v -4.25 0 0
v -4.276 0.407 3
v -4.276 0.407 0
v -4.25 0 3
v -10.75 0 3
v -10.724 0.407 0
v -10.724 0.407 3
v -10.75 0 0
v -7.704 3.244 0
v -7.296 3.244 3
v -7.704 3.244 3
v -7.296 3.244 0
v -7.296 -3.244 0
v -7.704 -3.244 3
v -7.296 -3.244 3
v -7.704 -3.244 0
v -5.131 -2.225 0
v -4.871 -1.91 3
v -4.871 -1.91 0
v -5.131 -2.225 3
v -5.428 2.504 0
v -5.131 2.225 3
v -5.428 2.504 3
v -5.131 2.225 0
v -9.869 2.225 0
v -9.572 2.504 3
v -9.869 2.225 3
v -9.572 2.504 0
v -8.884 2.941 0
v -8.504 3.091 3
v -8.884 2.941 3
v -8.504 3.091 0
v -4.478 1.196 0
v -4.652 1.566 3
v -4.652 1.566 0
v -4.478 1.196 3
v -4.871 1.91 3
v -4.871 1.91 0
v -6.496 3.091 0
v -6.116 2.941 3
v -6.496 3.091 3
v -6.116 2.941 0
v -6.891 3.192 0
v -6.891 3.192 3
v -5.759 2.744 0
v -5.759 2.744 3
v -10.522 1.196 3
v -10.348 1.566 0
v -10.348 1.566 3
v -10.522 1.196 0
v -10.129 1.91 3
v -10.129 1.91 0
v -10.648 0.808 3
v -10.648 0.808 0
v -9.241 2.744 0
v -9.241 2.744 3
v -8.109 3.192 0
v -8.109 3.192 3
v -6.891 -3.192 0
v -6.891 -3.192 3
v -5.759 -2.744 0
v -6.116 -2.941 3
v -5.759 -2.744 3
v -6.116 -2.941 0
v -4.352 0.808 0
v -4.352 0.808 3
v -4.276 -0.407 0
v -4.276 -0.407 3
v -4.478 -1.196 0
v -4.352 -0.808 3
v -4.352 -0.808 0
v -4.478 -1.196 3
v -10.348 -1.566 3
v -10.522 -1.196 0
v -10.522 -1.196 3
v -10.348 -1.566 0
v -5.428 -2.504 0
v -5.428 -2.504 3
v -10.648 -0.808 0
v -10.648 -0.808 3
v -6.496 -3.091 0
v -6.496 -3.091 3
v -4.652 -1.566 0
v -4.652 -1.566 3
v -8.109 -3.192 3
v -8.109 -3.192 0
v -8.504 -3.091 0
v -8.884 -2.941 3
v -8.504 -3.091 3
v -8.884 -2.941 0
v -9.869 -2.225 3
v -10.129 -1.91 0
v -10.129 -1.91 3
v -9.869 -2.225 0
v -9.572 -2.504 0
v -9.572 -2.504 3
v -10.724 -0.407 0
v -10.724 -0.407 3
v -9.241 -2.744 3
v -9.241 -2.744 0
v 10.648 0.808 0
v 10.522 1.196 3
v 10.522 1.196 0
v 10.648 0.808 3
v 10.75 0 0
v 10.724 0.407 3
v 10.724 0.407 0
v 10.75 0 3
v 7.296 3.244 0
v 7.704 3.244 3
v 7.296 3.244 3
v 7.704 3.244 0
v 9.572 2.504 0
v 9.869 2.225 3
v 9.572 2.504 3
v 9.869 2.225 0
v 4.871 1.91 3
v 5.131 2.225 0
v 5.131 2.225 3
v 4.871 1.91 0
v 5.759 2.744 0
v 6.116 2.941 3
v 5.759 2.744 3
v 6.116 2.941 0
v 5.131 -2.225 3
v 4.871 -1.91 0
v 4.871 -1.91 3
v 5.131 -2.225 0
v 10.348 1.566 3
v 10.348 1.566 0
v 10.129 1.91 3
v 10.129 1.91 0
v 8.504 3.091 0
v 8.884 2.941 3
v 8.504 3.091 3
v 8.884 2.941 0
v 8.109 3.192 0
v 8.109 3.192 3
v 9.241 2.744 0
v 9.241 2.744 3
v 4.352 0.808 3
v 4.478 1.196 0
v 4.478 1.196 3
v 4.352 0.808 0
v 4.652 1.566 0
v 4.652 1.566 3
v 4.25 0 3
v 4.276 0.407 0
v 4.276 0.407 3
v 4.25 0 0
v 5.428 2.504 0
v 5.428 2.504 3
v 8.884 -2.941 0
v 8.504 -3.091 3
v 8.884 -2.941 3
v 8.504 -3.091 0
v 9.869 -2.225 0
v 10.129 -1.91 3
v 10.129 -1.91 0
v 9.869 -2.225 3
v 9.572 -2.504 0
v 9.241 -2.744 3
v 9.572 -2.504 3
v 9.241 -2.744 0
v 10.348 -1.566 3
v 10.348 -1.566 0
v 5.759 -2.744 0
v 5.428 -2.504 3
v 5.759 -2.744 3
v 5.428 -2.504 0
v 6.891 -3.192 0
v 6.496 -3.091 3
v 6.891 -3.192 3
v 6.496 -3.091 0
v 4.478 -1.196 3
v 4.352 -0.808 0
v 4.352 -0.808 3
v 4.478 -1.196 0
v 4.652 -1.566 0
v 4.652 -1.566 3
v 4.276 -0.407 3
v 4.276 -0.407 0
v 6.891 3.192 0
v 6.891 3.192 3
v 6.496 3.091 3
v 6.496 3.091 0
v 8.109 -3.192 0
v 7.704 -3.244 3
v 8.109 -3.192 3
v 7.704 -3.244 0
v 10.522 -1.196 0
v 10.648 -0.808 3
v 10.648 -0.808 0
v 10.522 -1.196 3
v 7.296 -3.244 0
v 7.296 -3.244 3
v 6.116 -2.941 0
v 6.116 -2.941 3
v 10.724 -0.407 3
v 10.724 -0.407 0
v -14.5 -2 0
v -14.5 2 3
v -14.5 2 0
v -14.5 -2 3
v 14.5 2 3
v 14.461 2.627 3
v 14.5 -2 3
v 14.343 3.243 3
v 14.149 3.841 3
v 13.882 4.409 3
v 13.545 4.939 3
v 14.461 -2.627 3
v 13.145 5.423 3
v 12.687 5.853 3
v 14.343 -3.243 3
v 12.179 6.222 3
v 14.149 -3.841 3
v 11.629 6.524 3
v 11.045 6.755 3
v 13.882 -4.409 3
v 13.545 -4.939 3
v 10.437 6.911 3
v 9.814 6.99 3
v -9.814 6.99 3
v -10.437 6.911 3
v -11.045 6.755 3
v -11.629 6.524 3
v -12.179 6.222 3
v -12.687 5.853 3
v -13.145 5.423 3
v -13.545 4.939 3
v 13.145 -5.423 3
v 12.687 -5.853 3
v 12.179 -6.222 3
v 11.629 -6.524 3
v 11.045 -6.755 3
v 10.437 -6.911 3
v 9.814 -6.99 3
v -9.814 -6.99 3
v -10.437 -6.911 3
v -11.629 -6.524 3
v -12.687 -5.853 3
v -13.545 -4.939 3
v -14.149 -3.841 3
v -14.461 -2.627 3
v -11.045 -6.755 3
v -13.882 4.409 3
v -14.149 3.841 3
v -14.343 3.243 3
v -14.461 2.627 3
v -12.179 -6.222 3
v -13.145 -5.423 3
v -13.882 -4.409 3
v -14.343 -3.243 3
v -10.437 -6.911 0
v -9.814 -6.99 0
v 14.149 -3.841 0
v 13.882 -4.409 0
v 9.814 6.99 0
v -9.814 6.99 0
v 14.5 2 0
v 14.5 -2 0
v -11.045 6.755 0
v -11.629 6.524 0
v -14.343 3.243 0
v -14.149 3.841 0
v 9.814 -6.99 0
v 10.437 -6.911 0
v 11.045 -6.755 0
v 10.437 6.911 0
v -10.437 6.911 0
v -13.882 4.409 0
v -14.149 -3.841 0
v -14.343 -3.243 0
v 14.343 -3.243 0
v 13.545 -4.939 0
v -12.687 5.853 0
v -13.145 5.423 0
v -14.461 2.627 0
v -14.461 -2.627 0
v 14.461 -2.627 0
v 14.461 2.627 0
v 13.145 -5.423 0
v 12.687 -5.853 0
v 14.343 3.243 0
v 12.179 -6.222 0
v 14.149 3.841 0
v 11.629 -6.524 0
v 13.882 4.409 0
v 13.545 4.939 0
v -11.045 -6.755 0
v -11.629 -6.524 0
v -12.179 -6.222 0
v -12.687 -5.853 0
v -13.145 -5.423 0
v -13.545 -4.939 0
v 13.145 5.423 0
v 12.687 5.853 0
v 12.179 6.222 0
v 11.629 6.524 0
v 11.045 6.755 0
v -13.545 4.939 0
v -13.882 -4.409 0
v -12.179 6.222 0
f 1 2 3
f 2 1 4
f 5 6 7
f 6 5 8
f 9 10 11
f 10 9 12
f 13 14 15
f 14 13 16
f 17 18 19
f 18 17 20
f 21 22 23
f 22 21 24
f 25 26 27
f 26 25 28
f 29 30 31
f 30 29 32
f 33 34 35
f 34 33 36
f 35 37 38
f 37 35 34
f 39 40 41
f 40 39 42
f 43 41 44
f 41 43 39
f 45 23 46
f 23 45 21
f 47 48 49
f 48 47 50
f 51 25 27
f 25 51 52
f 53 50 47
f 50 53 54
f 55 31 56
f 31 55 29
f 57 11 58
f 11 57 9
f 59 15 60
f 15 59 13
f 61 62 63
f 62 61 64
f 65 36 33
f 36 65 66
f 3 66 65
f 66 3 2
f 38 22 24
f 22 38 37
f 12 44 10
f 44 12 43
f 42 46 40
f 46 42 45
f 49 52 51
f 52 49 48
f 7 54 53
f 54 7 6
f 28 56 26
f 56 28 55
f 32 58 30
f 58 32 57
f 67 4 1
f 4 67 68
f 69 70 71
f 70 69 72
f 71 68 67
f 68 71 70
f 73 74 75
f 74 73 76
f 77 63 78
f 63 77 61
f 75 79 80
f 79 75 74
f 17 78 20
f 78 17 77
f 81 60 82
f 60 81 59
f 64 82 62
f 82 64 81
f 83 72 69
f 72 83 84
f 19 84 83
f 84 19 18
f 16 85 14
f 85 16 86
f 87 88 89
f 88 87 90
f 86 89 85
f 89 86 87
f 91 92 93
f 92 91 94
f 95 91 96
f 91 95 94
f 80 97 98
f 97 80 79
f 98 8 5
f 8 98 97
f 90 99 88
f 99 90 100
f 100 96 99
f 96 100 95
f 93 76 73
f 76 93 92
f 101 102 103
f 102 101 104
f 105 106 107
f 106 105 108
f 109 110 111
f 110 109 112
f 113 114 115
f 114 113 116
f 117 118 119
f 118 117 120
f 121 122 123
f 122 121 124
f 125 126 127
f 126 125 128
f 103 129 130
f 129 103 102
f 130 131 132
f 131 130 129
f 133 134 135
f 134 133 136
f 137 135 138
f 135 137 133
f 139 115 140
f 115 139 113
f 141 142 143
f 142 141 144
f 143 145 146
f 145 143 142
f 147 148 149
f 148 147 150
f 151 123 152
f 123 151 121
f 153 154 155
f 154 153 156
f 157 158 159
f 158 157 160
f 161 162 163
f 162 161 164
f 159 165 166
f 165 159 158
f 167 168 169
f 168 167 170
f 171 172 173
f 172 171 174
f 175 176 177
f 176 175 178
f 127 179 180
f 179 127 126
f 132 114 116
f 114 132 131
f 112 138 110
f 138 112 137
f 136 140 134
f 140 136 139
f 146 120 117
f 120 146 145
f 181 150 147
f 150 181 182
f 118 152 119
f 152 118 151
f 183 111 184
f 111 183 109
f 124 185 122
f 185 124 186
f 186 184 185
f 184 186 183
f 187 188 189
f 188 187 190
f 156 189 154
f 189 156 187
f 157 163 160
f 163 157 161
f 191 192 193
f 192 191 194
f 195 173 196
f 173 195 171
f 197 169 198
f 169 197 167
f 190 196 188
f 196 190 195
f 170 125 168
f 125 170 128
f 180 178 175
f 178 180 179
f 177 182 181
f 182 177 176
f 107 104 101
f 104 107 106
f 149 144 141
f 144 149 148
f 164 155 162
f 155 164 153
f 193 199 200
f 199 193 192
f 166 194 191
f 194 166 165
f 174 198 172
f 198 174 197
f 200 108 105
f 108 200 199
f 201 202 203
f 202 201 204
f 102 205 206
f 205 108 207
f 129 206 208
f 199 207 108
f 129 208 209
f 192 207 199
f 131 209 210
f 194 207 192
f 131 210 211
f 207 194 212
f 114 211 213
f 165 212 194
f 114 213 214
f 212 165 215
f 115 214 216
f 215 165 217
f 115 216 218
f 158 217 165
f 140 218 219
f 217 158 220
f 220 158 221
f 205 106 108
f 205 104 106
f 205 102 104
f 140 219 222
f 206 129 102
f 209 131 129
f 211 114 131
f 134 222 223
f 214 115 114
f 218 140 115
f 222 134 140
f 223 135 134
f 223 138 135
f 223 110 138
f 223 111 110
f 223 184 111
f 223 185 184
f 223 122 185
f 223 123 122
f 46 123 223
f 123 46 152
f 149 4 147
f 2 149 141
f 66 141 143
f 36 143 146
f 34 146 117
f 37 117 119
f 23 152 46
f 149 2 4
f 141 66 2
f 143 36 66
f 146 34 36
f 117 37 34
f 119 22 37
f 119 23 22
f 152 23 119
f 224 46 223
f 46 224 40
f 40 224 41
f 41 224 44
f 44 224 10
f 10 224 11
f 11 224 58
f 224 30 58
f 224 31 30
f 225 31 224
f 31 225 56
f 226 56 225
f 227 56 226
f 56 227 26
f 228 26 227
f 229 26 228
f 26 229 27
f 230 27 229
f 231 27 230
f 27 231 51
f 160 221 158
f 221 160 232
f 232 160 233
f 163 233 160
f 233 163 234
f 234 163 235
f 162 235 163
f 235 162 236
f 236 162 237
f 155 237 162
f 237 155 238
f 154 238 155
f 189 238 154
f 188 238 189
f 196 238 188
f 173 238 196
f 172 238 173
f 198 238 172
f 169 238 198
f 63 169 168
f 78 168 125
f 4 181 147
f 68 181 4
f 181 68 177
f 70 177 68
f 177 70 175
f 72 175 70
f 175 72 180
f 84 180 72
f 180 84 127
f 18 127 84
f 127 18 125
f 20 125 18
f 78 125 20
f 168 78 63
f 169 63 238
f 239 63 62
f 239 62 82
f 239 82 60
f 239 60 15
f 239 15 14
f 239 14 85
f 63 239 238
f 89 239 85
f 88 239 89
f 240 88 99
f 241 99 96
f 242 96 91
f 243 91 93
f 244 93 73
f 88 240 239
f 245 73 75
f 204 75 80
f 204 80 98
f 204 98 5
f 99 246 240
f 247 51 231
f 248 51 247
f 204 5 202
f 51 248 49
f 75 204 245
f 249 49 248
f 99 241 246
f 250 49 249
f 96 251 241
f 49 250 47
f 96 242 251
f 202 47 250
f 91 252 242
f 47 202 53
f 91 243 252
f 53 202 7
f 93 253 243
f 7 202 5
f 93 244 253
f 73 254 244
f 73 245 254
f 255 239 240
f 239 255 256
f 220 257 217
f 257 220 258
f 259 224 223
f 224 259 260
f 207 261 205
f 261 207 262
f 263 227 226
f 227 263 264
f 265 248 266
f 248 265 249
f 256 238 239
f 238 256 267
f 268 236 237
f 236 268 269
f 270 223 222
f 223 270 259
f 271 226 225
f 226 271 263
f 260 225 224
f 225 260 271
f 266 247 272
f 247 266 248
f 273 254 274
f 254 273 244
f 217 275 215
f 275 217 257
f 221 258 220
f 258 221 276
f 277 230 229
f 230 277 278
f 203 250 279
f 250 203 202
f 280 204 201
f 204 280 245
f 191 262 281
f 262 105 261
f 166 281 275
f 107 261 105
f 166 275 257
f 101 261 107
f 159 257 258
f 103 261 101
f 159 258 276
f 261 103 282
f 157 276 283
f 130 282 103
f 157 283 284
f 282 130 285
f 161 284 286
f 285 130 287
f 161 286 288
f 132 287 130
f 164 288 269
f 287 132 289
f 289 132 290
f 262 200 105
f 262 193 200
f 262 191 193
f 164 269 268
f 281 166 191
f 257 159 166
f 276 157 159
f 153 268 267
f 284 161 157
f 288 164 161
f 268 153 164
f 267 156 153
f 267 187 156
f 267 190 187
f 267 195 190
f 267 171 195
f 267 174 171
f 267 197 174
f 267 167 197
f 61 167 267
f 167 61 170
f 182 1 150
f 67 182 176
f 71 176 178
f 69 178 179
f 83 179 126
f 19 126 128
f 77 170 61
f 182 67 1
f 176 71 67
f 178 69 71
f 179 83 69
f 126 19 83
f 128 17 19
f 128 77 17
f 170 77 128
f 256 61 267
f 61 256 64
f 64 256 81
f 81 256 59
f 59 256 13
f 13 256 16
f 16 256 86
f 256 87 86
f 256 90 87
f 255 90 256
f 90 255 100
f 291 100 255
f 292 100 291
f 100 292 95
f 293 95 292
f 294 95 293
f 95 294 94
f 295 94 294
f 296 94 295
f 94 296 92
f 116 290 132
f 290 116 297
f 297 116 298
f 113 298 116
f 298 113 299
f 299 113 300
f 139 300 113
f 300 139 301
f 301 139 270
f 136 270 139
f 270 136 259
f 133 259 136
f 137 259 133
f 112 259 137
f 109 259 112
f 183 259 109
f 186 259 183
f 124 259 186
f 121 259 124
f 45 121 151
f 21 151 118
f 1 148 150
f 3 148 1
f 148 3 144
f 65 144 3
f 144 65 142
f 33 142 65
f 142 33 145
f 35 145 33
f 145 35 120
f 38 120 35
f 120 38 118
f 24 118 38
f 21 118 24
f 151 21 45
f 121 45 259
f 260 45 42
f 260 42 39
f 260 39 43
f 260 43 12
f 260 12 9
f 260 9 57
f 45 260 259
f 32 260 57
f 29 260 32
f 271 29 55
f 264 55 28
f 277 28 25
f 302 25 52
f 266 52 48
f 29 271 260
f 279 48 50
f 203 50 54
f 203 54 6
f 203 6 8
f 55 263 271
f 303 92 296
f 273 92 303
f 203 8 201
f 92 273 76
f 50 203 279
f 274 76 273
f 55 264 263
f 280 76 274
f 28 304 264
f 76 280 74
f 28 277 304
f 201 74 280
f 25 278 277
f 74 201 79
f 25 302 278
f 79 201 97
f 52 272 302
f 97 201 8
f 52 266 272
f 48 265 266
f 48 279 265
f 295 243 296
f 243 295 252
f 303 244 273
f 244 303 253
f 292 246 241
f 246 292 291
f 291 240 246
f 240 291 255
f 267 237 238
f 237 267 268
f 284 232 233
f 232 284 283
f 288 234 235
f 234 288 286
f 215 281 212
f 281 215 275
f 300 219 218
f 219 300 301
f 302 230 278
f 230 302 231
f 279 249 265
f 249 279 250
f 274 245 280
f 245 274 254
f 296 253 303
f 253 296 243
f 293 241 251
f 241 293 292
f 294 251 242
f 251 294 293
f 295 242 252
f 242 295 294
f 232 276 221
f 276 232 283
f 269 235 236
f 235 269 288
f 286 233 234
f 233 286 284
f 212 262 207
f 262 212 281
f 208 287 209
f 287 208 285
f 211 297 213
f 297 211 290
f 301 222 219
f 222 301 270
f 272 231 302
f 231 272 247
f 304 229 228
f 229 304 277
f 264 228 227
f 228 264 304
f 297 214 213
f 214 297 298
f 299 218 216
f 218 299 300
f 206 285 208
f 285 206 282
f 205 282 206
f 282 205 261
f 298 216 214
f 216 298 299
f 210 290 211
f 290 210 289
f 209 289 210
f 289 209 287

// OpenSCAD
$fn = 50;


difference() {
	union() {
		translate(v = [0, 0, 0]) {
			rotate(a = [0, 0, 0]) {
				hull() {
					translate(v = [-9.5000000000, 2.0000000000, 0]) {
						rotate(a = [0, 0, 0]) {
							translate(v = [0, 0, 0]) {
								rotate(a = [0, 0, 0]) {
									cylinder(h = 3, r = 5);
								}
							}
						}
					}
					translate(v = [9.5000000000, 2.0000000000, 0]) {
						rotate(a = [0, 0, 0]) {
							translate(v = [0, 0, 0]) {
								rotate(a = [0, 0, 0]) {
									cylinder(h = 3, r = 5);
								}
							}
						}
					}
					translate(v = [-9.5000000000, -2.0000000000, 0]) {
						rotate(a = [0, 0, 0]) {
							translate(v = [0, 0, 0]) {
								rotate(a = [0, 0, 0]) {
									cylinder(h = 3, r = 5);
								}
							}
						}
					}
					translate(v = [9.5000000000, -2.0000000000, 0]) {
						rotate(a = [0, 0, 0]) {
							translate(v = [0, 0, 0]) {
								rotate(a = [0, 0, 0]) {
									cylinder(h = 3, r = 5);
								}
							}
						}
					}
				}
			}
		}
	}
	union() {
		translate(v = [-7.5000000000, 0.0000000000, 0]) {
			rotate(a = [0, 0, 0]) {
				translate(v = [0, 0, -50]) {
					rotate(a = [0, 0, 0]) {
						cylinder(h = 100, r = 3.2500000000);
					}
				}
			}
		}
		translate(v = [7.5000000000, 0.0000000000, 0]) {
			rotate(a = [0, 0, 0]) {
				translate(v = [0, 0, -50]) {
					rotate(a = [0, 0, 0]) {
						cylinder(h = 100, r = 3.2500000000);
					}
				}
			}
		}
	}
}
